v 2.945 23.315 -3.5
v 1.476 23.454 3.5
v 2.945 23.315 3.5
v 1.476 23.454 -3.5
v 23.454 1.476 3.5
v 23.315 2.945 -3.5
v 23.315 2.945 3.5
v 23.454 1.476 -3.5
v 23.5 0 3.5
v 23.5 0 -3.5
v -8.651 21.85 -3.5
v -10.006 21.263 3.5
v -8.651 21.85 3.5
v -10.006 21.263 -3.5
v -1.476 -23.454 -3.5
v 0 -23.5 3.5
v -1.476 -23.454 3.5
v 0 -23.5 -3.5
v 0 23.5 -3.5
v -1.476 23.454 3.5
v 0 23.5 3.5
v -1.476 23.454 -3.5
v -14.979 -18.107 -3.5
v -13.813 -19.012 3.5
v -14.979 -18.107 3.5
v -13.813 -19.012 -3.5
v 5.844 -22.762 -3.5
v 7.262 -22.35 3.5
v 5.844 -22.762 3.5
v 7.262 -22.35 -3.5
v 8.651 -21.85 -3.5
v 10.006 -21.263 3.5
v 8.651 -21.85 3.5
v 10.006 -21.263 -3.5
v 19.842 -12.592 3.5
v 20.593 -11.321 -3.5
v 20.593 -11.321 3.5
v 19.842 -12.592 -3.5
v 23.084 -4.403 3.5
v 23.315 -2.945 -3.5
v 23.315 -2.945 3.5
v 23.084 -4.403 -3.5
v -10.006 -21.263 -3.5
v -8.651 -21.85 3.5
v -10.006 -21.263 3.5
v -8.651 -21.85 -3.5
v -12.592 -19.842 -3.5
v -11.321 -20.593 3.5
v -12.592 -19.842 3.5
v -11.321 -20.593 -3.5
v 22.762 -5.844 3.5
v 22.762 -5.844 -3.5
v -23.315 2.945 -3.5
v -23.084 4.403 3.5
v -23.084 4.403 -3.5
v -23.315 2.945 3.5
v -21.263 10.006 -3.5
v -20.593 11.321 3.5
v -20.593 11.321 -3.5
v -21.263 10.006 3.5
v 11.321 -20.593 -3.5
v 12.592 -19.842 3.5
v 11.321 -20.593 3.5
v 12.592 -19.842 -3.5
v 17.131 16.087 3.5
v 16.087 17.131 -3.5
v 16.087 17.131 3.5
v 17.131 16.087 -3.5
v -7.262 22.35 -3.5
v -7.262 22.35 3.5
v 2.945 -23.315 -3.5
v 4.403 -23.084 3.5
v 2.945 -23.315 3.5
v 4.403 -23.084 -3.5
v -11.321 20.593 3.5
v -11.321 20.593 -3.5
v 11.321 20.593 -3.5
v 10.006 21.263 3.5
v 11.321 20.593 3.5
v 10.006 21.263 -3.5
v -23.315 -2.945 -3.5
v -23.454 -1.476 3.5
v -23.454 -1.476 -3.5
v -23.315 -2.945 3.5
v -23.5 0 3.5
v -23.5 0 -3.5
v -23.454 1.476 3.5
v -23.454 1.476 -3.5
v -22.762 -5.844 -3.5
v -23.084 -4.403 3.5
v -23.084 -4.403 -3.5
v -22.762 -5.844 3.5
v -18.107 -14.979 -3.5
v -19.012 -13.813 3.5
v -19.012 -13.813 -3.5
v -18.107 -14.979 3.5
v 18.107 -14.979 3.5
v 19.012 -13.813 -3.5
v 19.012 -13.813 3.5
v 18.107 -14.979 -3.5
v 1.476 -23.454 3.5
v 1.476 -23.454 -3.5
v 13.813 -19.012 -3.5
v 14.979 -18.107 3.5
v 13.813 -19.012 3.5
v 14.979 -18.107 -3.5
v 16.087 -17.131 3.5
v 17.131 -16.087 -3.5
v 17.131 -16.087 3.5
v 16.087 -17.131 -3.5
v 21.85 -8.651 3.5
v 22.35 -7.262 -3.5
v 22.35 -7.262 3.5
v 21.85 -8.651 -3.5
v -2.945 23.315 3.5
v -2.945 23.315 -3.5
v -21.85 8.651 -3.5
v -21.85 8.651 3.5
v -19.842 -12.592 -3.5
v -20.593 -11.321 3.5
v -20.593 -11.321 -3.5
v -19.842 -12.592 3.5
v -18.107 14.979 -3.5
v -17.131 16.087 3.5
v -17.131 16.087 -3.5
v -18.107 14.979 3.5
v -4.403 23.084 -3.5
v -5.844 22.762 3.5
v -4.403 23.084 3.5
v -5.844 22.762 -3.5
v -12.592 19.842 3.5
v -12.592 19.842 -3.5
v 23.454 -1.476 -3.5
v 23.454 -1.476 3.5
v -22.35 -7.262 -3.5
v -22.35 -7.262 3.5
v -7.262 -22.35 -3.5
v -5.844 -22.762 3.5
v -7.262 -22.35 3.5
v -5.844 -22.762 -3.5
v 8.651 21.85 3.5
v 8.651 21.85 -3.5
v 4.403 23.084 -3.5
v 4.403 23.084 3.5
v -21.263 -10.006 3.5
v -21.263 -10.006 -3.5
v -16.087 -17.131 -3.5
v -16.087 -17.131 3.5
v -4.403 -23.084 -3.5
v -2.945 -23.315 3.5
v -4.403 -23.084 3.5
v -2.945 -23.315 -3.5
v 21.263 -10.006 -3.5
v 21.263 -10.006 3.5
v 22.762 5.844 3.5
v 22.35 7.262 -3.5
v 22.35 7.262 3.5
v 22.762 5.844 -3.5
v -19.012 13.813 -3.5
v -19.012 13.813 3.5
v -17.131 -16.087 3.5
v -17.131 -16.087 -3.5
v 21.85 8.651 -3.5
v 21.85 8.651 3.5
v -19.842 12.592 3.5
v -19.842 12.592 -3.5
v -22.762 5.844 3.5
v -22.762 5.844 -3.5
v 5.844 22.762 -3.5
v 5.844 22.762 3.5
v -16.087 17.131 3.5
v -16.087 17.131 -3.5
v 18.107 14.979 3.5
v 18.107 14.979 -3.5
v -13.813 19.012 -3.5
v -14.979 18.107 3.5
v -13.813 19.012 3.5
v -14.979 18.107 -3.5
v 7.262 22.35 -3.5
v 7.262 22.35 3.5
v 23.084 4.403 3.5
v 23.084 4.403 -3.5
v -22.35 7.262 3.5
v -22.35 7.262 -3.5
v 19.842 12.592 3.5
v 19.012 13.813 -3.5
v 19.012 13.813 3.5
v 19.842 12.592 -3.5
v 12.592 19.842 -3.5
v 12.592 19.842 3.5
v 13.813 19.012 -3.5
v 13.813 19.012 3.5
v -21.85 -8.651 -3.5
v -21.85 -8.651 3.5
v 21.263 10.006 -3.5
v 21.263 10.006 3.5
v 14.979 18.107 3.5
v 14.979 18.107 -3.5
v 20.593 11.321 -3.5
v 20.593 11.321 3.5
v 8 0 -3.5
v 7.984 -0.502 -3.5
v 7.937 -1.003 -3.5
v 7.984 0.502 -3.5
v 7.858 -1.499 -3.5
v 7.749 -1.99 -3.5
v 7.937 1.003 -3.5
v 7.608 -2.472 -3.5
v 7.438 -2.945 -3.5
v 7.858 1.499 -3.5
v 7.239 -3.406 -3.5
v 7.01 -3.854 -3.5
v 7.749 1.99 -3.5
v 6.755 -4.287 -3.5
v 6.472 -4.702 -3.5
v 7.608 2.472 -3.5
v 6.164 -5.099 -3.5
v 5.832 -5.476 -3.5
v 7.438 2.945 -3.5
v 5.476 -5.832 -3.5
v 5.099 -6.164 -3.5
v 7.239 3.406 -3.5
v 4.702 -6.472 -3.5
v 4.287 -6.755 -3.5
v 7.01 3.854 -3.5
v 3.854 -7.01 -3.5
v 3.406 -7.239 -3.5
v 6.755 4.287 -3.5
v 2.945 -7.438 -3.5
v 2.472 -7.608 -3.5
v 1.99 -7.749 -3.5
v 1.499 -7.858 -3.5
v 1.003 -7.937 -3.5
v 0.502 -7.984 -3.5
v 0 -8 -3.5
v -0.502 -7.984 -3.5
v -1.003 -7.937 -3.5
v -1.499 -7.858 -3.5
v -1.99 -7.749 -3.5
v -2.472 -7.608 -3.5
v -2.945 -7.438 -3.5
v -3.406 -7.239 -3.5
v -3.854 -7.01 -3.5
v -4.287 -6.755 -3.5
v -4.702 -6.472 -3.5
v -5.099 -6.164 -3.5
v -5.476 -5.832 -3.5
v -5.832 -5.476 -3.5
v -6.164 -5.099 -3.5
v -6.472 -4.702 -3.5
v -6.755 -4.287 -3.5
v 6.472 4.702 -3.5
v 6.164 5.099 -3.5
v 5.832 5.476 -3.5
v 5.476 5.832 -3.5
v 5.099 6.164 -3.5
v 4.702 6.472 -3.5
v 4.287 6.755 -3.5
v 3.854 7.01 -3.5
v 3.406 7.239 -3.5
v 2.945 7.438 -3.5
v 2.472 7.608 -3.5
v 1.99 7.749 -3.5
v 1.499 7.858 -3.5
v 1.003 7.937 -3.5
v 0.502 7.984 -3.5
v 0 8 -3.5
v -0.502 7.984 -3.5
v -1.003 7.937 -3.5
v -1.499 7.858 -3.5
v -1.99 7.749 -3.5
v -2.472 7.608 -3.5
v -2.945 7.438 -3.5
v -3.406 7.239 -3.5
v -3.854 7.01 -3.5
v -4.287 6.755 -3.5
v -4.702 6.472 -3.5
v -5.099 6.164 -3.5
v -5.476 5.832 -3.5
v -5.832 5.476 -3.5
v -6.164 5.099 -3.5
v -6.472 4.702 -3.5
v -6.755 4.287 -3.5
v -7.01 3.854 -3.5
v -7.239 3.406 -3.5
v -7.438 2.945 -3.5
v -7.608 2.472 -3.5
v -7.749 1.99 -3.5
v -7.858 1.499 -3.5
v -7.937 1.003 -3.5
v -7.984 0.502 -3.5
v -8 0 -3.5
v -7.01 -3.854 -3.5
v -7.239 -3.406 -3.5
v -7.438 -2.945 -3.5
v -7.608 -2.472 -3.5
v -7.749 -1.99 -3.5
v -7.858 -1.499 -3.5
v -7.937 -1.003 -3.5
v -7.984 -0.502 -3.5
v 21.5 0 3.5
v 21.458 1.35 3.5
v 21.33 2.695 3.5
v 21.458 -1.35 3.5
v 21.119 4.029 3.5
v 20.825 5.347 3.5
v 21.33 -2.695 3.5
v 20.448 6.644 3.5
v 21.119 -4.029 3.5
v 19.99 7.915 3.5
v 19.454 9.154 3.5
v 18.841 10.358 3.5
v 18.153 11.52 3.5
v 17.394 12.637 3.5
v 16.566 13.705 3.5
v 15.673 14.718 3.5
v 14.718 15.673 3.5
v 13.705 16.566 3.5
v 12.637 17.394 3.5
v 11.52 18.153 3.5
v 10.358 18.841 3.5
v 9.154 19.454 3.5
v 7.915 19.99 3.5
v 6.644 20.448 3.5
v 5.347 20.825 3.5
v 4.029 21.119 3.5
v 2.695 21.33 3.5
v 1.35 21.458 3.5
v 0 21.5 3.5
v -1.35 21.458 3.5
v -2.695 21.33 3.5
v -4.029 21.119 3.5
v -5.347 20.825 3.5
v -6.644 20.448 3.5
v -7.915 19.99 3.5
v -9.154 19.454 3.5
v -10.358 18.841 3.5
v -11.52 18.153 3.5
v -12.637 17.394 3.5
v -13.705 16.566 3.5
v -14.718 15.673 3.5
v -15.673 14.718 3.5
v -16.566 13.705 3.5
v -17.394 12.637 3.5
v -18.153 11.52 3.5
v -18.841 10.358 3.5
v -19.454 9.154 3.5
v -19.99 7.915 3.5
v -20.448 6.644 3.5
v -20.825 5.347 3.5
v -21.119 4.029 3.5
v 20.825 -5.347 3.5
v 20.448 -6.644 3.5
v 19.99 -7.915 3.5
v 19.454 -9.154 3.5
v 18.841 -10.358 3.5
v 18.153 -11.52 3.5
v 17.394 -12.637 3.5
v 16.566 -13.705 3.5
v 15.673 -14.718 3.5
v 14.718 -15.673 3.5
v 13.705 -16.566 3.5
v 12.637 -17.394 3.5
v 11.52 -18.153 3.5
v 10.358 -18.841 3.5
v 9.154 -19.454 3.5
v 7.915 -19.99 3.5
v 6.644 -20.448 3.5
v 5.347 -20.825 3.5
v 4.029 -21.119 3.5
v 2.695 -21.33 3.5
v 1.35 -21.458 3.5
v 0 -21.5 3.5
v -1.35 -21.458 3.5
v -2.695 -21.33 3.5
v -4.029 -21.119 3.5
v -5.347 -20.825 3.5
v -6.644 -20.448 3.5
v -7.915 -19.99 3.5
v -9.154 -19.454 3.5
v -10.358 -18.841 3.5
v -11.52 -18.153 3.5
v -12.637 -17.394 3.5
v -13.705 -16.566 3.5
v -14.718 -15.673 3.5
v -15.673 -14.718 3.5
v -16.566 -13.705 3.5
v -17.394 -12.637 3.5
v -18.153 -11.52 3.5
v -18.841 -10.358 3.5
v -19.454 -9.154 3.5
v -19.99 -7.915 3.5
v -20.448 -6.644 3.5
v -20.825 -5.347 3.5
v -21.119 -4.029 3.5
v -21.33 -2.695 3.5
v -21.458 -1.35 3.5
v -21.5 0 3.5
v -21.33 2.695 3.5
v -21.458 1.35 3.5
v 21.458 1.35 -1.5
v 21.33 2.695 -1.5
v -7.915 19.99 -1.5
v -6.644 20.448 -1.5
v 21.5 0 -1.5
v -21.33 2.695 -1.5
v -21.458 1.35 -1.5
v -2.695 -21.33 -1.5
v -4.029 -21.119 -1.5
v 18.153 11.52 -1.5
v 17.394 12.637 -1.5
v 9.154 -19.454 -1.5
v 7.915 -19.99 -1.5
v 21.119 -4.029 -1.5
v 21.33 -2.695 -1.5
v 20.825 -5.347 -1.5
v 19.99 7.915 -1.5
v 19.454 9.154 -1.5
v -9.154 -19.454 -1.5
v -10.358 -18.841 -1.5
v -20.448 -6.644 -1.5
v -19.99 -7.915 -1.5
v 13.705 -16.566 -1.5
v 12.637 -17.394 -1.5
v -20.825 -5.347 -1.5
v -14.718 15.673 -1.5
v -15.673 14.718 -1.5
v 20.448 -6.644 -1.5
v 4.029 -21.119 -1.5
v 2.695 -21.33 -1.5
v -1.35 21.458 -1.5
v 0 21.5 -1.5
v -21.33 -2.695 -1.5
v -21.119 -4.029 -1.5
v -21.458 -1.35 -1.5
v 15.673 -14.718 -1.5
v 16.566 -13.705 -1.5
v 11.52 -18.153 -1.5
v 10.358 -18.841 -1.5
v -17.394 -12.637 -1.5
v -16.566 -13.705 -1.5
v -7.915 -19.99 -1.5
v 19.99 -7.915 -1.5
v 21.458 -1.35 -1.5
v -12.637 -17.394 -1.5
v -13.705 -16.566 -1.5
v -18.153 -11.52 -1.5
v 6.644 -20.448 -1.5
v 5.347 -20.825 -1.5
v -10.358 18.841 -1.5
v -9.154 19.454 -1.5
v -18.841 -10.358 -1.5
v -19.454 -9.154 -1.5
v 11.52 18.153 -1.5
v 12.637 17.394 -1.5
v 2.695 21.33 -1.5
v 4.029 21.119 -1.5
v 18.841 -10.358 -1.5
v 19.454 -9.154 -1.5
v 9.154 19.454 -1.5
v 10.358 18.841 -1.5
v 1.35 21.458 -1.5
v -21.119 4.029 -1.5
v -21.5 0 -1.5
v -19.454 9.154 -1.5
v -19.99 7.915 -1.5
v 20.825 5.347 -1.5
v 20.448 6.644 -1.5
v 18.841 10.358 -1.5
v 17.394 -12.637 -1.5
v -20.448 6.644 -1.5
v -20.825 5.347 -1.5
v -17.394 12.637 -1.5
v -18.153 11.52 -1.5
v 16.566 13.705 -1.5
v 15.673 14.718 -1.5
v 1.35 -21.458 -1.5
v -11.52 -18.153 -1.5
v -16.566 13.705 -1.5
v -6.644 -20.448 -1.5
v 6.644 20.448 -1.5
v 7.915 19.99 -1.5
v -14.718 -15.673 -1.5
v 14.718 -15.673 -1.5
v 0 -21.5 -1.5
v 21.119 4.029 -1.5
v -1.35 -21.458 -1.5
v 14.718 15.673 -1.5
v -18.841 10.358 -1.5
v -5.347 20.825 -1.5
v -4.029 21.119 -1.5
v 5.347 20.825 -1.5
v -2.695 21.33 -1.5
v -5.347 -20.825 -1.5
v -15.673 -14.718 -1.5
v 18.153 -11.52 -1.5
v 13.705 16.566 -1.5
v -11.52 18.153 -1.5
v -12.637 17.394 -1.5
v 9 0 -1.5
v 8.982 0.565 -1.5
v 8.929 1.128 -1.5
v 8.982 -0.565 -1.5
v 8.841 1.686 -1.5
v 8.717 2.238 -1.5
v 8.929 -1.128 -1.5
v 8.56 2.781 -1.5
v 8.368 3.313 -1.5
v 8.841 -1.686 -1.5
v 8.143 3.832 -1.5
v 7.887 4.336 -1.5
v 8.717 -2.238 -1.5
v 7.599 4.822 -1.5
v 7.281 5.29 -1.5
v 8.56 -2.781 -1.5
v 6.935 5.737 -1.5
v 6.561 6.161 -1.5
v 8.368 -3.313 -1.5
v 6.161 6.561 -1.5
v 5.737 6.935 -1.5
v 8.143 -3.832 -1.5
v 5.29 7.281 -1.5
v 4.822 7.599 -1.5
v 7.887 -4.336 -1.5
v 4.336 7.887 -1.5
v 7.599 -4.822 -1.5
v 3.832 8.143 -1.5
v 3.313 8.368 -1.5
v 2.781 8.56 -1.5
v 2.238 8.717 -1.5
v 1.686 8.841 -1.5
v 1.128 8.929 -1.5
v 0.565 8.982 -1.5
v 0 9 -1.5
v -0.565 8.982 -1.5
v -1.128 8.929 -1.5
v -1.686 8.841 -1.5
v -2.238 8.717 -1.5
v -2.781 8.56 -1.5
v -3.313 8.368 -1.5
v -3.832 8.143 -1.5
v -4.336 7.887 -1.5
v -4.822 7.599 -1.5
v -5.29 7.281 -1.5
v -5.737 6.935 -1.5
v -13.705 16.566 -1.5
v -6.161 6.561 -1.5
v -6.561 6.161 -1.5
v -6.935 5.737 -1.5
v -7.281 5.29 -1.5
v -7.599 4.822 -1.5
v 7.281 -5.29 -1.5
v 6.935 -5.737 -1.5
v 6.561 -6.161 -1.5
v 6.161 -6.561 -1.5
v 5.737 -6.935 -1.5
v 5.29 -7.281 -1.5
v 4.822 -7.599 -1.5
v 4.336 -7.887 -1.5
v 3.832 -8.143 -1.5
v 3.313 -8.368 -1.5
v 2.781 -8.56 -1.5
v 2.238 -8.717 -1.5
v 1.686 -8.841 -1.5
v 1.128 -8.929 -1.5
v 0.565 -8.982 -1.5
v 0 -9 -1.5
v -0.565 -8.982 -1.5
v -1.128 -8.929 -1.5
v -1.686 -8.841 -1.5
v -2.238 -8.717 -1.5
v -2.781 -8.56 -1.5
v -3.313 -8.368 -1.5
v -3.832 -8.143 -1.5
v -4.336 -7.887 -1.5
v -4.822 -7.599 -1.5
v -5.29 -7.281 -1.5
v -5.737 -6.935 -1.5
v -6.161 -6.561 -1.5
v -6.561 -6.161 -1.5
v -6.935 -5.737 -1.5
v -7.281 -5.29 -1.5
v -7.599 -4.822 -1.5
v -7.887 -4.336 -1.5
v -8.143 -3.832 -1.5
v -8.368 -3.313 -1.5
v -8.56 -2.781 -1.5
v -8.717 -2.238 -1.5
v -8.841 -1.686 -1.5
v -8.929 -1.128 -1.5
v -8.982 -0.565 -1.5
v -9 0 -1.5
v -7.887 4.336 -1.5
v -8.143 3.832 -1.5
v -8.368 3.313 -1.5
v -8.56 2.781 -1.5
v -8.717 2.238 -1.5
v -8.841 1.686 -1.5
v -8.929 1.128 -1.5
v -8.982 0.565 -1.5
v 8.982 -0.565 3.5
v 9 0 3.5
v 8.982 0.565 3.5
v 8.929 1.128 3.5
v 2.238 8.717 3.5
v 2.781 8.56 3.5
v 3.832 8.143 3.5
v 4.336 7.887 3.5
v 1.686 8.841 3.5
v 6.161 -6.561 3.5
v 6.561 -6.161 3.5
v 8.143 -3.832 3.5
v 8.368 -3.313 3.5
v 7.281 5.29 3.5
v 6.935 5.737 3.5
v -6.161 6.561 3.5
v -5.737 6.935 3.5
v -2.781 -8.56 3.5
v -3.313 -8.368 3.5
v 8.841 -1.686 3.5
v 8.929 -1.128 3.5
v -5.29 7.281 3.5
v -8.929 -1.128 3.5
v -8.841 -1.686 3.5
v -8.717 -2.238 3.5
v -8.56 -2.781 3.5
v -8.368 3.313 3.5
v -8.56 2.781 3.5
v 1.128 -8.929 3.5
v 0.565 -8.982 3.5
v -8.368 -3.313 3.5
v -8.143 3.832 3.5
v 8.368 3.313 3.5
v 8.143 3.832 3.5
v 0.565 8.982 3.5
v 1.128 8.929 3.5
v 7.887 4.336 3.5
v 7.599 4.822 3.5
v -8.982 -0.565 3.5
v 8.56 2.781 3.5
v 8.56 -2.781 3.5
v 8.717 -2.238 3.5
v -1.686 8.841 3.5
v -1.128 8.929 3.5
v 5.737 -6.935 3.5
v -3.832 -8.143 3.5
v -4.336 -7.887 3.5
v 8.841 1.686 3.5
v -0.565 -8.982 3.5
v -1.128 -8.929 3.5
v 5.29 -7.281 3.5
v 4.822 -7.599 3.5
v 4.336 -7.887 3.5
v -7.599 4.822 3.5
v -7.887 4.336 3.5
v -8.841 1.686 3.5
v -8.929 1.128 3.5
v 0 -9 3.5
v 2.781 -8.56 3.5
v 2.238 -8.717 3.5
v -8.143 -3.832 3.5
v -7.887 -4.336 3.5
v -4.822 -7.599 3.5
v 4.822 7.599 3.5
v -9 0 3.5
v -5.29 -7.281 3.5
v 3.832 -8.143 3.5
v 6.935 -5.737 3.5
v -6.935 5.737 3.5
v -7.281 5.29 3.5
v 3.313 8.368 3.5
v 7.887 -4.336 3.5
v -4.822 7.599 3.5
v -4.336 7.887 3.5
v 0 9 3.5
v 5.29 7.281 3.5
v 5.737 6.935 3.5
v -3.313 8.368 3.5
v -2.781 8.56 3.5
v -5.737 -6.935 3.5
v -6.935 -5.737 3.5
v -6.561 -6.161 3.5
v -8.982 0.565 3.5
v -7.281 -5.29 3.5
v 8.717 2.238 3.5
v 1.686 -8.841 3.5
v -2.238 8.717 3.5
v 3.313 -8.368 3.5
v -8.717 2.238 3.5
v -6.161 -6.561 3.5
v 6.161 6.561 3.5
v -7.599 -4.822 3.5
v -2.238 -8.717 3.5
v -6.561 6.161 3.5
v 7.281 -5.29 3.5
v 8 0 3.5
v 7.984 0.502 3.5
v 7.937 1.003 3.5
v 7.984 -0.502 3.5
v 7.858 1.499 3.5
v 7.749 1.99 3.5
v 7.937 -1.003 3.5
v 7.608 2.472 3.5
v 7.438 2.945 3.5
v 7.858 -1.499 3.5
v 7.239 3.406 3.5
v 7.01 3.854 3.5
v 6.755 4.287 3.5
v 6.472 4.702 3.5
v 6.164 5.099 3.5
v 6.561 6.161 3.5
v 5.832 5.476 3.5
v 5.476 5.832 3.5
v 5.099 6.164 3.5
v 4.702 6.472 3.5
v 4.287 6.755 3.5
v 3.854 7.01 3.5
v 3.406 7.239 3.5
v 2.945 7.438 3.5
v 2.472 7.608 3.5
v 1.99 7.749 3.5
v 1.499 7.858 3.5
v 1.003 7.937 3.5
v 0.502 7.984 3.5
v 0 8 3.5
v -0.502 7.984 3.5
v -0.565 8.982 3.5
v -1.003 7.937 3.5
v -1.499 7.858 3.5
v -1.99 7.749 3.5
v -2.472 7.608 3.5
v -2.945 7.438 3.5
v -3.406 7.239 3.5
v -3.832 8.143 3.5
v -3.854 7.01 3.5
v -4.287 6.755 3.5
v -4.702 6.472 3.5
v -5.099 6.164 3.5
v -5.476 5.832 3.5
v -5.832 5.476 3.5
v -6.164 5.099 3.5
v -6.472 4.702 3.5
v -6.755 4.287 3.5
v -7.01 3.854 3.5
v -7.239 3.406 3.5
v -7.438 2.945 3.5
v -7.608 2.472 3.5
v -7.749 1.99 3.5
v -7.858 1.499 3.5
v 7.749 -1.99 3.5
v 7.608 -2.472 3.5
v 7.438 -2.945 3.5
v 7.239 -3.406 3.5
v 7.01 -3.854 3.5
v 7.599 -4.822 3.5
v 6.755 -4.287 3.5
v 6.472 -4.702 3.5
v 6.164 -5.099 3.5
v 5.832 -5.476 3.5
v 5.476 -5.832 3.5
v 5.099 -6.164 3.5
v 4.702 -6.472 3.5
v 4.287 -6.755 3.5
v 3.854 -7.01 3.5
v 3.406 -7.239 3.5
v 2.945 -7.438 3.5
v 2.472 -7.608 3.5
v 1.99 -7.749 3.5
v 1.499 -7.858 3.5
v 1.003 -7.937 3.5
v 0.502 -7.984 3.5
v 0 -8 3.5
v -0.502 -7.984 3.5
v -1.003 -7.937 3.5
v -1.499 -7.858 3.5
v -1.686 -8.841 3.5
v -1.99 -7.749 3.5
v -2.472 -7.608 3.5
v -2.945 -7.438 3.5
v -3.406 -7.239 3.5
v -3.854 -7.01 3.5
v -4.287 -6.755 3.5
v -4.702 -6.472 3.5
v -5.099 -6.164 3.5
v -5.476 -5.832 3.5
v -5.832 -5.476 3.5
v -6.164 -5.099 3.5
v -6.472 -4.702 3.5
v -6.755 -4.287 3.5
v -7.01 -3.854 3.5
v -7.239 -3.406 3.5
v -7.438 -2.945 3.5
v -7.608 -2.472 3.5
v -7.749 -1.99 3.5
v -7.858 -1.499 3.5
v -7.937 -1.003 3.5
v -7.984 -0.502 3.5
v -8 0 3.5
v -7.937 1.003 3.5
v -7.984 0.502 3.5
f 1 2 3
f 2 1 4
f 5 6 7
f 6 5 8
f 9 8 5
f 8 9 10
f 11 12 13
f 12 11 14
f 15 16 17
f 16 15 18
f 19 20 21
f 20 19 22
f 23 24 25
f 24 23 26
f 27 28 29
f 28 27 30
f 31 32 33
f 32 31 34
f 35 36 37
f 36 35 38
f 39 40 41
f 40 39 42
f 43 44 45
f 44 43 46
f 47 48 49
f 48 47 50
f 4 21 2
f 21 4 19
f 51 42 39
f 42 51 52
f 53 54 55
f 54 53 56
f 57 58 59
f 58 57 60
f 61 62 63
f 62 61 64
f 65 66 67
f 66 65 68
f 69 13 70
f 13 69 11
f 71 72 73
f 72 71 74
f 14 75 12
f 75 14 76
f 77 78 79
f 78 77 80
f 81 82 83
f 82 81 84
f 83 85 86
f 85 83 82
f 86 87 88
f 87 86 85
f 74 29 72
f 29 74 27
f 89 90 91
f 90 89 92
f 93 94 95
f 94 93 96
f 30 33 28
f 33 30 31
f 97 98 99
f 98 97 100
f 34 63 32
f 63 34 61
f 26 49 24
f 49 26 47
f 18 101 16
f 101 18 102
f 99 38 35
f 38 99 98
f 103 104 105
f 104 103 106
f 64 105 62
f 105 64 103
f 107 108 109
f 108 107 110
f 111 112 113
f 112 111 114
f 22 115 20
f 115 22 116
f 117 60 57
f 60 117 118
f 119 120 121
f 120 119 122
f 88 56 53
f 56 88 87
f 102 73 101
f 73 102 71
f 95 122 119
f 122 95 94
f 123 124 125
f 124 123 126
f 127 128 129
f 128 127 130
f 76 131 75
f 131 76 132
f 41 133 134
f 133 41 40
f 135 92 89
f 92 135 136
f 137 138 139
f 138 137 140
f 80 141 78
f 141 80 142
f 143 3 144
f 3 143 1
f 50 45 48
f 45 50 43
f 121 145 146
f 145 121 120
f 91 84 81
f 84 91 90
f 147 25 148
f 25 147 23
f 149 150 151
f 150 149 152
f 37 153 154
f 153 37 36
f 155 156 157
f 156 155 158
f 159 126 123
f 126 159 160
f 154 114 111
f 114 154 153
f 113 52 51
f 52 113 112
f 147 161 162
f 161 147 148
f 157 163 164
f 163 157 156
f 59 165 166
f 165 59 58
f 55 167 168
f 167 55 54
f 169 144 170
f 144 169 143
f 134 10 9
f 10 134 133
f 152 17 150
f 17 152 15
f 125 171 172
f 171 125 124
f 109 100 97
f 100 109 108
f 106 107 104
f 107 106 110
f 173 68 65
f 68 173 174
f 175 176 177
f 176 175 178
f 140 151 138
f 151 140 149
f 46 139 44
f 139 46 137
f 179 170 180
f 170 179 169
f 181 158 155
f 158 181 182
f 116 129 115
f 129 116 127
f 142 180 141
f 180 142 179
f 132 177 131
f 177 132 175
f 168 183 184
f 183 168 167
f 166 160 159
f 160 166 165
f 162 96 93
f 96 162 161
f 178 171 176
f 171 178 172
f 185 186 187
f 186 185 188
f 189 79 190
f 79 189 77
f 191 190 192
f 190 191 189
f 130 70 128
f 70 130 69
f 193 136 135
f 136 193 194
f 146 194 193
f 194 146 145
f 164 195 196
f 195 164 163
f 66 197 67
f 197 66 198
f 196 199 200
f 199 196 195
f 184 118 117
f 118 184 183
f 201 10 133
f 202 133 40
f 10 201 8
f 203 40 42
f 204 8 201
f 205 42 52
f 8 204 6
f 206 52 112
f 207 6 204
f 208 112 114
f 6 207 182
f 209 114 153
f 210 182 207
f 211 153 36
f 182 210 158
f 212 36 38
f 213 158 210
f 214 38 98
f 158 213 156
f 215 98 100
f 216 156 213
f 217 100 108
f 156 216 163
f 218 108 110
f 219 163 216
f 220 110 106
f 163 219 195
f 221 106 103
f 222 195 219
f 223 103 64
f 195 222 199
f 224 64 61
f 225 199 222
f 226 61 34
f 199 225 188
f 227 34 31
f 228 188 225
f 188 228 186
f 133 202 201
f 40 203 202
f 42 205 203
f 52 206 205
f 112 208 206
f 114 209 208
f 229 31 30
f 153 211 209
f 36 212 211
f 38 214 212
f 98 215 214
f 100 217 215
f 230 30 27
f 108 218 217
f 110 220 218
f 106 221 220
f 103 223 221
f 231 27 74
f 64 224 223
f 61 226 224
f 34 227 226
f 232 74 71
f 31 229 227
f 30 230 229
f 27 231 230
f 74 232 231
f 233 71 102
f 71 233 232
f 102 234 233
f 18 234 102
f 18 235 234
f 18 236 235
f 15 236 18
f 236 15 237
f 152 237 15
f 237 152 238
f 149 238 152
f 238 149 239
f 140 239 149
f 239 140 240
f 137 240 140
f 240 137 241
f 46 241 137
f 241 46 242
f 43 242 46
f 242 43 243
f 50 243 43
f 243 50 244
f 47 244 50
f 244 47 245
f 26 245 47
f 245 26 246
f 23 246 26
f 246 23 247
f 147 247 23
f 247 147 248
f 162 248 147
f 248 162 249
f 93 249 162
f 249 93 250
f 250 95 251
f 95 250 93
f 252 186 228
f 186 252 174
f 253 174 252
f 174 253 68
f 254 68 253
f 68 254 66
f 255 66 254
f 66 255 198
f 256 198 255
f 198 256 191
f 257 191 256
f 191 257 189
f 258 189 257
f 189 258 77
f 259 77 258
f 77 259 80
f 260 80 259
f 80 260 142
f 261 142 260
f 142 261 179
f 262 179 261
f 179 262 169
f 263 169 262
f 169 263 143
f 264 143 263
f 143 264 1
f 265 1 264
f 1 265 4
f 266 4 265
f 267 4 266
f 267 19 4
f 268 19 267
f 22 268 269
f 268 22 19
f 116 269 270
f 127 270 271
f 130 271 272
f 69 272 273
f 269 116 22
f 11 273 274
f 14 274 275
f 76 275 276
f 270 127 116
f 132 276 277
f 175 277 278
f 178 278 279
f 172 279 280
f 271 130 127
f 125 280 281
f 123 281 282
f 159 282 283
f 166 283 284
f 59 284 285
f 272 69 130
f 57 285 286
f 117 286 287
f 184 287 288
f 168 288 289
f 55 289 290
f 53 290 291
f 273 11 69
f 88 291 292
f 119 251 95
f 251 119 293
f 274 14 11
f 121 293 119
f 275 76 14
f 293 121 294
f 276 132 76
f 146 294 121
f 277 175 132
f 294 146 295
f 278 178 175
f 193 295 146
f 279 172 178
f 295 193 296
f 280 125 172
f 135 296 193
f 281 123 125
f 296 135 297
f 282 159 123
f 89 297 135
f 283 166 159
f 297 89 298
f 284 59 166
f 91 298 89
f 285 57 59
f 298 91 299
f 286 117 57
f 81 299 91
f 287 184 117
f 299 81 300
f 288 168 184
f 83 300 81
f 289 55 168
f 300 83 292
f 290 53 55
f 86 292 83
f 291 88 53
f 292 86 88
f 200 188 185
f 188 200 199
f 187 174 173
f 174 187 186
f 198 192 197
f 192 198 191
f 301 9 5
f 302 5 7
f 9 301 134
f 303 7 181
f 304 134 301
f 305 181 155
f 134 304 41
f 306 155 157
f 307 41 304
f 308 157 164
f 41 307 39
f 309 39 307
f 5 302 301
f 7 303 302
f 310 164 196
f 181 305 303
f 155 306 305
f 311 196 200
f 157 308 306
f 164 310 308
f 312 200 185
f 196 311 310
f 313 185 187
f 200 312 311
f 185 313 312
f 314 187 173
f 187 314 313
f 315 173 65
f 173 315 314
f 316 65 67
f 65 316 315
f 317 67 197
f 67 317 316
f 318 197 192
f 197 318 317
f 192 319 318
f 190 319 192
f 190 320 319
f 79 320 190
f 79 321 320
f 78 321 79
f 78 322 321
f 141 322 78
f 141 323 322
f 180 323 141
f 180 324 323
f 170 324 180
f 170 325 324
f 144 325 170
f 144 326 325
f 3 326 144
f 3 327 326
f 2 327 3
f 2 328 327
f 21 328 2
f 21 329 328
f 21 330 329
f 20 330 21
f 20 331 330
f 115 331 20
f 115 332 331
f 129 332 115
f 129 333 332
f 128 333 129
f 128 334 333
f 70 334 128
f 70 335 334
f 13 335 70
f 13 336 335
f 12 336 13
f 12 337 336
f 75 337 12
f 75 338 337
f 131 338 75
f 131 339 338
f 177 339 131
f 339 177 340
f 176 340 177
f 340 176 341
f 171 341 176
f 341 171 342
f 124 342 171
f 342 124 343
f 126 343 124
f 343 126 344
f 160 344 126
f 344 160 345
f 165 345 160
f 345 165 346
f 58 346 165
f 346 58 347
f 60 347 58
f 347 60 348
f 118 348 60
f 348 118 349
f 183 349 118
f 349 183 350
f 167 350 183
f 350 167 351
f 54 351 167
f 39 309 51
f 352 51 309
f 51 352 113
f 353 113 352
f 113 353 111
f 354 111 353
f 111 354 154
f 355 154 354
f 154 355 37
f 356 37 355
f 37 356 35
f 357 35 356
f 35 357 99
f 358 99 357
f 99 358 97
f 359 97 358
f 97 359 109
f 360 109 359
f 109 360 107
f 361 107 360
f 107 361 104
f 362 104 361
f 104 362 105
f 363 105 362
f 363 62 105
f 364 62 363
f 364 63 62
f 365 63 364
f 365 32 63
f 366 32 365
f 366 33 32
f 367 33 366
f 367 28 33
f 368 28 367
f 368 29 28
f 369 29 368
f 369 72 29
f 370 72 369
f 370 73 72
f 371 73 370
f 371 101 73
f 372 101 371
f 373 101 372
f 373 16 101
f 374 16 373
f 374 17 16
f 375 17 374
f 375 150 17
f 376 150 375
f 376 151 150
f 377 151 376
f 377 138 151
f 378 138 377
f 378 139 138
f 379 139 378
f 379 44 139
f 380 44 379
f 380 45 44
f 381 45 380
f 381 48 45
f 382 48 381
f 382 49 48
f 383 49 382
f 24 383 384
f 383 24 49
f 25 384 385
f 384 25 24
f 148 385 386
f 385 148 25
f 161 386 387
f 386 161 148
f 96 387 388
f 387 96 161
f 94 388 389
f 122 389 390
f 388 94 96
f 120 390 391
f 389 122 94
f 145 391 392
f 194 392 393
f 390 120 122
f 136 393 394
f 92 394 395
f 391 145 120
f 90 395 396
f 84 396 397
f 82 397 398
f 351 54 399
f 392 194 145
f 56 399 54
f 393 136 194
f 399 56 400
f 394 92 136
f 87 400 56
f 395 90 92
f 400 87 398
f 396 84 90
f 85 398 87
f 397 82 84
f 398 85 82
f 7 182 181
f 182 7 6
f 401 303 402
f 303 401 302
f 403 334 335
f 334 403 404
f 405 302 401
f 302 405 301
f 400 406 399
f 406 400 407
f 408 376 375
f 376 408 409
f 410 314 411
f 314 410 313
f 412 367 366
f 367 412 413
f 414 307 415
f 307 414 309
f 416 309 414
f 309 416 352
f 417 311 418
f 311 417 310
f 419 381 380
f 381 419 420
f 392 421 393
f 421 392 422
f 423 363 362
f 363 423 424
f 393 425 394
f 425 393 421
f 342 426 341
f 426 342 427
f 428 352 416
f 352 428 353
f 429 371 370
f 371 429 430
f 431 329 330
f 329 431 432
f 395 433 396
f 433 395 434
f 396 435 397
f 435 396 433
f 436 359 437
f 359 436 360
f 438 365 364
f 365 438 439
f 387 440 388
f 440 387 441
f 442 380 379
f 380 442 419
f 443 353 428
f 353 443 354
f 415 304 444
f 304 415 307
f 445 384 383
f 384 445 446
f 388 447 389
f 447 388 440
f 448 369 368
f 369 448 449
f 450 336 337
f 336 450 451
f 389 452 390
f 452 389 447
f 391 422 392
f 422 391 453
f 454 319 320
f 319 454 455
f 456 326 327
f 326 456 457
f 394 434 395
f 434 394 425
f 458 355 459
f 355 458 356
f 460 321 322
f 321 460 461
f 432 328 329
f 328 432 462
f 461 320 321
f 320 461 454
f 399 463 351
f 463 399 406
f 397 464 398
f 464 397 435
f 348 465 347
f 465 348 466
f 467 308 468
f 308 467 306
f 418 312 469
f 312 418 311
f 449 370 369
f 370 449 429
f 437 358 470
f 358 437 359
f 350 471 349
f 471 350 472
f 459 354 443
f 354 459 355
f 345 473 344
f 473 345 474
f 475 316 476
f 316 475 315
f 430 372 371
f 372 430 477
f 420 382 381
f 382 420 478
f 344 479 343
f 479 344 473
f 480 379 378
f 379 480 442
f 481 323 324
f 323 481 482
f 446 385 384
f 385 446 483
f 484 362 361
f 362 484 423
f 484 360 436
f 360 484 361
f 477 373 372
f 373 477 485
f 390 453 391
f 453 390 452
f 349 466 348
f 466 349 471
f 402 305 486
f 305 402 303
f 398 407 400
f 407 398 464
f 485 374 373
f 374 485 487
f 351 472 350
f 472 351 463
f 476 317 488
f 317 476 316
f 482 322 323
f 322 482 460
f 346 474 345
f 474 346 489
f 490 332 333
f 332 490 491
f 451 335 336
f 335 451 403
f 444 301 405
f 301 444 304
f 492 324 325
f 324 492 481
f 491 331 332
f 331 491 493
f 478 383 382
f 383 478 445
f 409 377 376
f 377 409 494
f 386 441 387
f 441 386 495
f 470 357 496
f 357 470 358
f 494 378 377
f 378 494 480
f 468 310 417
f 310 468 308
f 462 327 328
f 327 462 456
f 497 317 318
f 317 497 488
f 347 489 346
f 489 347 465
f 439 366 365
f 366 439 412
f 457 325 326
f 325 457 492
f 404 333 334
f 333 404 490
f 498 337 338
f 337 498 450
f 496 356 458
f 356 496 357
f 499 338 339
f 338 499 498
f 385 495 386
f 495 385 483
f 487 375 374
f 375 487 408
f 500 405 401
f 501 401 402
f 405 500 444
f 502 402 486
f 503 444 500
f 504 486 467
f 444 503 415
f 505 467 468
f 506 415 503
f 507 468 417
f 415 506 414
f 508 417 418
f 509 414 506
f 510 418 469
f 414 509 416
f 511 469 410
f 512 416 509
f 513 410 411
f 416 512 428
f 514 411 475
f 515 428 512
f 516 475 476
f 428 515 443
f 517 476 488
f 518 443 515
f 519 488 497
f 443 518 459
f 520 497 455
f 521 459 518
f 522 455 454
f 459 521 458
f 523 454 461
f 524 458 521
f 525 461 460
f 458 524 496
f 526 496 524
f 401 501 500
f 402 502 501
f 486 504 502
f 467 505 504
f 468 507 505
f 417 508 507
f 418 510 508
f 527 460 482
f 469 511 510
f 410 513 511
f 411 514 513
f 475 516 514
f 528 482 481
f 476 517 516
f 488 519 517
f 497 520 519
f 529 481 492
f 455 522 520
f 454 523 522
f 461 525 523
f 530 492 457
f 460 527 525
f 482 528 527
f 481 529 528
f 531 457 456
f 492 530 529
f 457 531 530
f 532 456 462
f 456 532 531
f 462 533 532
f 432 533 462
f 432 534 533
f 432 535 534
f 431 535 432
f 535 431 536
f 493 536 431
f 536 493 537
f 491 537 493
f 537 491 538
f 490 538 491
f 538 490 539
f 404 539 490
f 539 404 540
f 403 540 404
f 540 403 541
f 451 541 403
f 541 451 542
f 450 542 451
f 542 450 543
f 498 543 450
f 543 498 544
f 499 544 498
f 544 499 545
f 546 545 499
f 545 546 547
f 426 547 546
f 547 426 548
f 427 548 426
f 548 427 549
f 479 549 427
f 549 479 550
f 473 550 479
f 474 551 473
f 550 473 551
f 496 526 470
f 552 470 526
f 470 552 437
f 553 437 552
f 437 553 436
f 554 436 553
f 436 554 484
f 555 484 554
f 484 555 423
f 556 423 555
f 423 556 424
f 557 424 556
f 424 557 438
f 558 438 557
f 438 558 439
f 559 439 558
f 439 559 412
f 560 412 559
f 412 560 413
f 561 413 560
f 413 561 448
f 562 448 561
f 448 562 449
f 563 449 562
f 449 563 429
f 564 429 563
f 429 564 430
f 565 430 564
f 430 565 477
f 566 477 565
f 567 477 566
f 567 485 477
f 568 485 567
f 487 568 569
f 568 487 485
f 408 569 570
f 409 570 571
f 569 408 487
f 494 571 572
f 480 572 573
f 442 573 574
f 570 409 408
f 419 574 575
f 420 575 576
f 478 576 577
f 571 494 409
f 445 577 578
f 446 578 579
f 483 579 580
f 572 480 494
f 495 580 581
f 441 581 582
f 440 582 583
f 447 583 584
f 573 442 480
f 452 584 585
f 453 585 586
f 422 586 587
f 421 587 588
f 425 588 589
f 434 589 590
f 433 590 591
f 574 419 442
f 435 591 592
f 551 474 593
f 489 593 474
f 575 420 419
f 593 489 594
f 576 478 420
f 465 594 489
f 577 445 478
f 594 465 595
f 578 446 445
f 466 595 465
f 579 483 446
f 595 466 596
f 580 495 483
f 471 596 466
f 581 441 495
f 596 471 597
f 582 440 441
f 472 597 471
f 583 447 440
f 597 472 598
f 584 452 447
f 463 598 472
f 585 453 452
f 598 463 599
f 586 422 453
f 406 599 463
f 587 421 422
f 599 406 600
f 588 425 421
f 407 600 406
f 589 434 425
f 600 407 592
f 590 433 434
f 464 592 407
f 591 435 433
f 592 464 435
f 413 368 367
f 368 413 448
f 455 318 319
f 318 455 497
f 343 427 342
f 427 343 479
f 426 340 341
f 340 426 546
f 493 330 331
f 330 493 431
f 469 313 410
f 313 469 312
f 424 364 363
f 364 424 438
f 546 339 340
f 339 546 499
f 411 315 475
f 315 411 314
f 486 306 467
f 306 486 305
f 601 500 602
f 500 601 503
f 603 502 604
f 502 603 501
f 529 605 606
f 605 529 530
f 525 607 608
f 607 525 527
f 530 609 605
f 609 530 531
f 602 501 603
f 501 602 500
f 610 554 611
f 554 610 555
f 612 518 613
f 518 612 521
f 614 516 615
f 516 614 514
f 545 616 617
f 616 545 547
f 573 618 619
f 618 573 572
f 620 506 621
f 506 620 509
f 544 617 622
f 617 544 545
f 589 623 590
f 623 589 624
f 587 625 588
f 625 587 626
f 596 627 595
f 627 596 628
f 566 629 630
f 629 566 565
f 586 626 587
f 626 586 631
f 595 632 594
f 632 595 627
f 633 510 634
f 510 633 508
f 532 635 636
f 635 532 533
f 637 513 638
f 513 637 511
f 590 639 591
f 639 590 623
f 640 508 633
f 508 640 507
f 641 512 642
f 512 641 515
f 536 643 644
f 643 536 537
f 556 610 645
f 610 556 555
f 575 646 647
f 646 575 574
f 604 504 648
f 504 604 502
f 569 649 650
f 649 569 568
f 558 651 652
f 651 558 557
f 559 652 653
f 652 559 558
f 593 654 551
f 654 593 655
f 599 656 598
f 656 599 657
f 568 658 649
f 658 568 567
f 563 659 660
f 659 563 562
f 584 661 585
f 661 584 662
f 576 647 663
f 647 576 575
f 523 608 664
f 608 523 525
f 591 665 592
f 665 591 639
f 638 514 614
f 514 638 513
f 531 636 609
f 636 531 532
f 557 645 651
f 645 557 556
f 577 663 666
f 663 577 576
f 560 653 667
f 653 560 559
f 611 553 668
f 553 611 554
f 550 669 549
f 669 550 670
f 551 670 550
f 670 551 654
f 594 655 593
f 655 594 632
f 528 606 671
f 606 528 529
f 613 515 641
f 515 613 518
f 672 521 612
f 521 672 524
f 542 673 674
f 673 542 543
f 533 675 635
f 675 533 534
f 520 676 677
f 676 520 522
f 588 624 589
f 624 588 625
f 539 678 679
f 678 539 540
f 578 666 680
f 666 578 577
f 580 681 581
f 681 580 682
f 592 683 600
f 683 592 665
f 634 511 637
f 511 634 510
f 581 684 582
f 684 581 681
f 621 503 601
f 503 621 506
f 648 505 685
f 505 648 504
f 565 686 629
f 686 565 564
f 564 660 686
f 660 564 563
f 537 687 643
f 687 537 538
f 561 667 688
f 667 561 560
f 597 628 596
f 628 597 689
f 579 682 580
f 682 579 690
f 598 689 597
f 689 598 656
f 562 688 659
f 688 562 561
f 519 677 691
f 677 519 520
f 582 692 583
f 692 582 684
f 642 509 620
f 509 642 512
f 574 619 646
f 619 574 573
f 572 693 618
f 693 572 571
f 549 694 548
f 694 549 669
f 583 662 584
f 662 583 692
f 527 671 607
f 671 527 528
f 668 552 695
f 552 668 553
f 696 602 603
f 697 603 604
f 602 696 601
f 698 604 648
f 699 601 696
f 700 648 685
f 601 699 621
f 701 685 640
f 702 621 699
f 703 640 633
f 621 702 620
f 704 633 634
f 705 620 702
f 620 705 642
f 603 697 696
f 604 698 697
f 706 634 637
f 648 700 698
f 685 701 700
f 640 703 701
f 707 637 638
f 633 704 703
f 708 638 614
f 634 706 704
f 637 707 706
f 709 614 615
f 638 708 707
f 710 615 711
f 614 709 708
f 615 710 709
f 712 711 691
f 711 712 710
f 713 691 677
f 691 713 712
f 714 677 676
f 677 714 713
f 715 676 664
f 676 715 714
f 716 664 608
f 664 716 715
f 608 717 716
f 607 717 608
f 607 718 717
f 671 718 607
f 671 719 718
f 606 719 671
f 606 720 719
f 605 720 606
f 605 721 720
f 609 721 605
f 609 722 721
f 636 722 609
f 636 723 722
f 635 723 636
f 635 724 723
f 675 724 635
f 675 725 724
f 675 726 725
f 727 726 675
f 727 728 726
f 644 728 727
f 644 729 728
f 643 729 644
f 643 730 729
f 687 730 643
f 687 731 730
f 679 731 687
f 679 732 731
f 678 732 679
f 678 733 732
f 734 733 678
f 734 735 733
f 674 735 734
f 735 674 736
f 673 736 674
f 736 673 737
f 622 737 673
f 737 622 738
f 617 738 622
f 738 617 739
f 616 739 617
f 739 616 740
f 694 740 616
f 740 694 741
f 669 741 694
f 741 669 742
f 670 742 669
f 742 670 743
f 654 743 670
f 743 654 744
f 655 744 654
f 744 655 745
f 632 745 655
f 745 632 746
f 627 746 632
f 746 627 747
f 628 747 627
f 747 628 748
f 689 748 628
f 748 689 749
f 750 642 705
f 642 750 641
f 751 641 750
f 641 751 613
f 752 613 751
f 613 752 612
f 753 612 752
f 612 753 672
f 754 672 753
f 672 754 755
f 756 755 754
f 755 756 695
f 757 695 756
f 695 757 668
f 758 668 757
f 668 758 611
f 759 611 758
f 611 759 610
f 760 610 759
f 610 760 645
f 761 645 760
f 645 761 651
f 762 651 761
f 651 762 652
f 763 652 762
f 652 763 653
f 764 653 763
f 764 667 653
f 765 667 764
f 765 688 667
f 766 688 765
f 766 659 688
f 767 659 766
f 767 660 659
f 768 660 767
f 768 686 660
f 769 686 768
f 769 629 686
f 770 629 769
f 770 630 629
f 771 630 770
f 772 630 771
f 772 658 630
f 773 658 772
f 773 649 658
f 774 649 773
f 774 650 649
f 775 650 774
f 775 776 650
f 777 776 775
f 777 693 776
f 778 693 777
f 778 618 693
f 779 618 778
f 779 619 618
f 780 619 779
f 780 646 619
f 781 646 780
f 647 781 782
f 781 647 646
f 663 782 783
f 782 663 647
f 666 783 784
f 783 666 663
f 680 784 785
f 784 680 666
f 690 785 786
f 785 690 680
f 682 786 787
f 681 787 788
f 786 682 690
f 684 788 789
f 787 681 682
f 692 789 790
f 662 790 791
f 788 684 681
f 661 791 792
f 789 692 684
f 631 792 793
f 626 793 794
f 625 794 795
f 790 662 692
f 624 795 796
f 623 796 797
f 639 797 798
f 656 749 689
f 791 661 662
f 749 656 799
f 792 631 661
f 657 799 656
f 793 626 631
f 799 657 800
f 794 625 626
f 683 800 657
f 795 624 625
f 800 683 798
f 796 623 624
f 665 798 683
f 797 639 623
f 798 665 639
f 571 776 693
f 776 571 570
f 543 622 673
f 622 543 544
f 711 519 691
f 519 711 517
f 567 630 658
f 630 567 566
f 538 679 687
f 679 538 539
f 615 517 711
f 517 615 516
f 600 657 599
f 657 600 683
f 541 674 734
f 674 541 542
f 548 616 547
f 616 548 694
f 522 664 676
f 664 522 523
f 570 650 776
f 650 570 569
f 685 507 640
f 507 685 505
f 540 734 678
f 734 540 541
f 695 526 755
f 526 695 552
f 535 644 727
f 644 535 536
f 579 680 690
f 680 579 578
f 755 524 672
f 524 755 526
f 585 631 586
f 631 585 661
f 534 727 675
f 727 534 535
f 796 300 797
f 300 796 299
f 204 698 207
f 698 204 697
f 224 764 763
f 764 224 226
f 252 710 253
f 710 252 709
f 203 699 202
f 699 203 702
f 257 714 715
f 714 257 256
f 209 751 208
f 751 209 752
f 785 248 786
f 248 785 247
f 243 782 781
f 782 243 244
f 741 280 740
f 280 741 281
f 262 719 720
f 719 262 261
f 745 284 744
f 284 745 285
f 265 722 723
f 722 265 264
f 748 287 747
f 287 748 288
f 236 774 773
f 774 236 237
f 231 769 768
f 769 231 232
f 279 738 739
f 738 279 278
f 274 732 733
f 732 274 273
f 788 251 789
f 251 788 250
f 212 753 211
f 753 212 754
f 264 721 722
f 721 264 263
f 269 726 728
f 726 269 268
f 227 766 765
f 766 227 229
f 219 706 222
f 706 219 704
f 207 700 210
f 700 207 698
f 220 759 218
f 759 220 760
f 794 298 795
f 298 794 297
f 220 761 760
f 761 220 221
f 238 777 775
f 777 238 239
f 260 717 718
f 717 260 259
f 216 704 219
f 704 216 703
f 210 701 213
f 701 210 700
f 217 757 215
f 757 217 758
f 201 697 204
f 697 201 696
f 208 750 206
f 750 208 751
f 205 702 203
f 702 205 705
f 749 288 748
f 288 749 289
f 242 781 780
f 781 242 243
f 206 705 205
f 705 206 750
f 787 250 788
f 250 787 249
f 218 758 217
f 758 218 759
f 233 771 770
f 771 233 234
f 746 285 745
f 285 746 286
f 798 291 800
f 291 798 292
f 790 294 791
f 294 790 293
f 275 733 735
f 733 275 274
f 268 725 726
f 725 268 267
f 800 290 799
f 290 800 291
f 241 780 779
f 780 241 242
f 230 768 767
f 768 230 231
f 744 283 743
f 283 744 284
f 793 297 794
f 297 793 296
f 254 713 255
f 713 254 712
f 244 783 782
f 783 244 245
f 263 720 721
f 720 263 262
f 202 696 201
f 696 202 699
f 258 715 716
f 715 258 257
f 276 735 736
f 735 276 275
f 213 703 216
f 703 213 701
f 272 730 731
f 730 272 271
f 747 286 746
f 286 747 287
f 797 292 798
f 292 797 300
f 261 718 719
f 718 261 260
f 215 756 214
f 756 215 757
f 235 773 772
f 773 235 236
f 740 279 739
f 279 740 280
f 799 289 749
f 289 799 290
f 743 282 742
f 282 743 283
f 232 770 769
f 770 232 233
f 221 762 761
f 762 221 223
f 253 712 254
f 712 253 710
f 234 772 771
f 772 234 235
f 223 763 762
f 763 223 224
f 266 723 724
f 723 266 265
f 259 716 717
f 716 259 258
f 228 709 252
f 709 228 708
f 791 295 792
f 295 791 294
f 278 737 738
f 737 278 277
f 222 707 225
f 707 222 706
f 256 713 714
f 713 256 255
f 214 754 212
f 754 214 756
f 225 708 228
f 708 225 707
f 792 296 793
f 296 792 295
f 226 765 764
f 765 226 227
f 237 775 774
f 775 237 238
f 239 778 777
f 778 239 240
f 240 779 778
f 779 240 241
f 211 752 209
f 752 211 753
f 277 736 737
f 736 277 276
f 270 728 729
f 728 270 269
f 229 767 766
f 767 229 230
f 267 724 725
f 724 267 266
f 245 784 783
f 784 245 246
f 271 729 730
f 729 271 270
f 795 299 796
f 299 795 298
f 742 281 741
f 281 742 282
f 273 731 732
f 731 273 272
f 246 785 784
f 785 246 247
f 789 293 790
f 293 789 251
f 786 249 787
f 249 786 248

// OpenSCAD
$fn=100;

module cap() {
difference() {
linear_extrude(height = 7, center = true) circle(d=47);
translate([0,0,2]) linear_extrude(height = 7, center = true) circle(d=43);
}
translate([0,0,0]) linear_extrude(height = 7, center = true) circle(d=18);

}

//linear_extrude(height = 20, center = true) circle(d=13.75);
//}



difference() {
    cap();
linear_extrude(height = 20, center = true) circle(d=16);
}
